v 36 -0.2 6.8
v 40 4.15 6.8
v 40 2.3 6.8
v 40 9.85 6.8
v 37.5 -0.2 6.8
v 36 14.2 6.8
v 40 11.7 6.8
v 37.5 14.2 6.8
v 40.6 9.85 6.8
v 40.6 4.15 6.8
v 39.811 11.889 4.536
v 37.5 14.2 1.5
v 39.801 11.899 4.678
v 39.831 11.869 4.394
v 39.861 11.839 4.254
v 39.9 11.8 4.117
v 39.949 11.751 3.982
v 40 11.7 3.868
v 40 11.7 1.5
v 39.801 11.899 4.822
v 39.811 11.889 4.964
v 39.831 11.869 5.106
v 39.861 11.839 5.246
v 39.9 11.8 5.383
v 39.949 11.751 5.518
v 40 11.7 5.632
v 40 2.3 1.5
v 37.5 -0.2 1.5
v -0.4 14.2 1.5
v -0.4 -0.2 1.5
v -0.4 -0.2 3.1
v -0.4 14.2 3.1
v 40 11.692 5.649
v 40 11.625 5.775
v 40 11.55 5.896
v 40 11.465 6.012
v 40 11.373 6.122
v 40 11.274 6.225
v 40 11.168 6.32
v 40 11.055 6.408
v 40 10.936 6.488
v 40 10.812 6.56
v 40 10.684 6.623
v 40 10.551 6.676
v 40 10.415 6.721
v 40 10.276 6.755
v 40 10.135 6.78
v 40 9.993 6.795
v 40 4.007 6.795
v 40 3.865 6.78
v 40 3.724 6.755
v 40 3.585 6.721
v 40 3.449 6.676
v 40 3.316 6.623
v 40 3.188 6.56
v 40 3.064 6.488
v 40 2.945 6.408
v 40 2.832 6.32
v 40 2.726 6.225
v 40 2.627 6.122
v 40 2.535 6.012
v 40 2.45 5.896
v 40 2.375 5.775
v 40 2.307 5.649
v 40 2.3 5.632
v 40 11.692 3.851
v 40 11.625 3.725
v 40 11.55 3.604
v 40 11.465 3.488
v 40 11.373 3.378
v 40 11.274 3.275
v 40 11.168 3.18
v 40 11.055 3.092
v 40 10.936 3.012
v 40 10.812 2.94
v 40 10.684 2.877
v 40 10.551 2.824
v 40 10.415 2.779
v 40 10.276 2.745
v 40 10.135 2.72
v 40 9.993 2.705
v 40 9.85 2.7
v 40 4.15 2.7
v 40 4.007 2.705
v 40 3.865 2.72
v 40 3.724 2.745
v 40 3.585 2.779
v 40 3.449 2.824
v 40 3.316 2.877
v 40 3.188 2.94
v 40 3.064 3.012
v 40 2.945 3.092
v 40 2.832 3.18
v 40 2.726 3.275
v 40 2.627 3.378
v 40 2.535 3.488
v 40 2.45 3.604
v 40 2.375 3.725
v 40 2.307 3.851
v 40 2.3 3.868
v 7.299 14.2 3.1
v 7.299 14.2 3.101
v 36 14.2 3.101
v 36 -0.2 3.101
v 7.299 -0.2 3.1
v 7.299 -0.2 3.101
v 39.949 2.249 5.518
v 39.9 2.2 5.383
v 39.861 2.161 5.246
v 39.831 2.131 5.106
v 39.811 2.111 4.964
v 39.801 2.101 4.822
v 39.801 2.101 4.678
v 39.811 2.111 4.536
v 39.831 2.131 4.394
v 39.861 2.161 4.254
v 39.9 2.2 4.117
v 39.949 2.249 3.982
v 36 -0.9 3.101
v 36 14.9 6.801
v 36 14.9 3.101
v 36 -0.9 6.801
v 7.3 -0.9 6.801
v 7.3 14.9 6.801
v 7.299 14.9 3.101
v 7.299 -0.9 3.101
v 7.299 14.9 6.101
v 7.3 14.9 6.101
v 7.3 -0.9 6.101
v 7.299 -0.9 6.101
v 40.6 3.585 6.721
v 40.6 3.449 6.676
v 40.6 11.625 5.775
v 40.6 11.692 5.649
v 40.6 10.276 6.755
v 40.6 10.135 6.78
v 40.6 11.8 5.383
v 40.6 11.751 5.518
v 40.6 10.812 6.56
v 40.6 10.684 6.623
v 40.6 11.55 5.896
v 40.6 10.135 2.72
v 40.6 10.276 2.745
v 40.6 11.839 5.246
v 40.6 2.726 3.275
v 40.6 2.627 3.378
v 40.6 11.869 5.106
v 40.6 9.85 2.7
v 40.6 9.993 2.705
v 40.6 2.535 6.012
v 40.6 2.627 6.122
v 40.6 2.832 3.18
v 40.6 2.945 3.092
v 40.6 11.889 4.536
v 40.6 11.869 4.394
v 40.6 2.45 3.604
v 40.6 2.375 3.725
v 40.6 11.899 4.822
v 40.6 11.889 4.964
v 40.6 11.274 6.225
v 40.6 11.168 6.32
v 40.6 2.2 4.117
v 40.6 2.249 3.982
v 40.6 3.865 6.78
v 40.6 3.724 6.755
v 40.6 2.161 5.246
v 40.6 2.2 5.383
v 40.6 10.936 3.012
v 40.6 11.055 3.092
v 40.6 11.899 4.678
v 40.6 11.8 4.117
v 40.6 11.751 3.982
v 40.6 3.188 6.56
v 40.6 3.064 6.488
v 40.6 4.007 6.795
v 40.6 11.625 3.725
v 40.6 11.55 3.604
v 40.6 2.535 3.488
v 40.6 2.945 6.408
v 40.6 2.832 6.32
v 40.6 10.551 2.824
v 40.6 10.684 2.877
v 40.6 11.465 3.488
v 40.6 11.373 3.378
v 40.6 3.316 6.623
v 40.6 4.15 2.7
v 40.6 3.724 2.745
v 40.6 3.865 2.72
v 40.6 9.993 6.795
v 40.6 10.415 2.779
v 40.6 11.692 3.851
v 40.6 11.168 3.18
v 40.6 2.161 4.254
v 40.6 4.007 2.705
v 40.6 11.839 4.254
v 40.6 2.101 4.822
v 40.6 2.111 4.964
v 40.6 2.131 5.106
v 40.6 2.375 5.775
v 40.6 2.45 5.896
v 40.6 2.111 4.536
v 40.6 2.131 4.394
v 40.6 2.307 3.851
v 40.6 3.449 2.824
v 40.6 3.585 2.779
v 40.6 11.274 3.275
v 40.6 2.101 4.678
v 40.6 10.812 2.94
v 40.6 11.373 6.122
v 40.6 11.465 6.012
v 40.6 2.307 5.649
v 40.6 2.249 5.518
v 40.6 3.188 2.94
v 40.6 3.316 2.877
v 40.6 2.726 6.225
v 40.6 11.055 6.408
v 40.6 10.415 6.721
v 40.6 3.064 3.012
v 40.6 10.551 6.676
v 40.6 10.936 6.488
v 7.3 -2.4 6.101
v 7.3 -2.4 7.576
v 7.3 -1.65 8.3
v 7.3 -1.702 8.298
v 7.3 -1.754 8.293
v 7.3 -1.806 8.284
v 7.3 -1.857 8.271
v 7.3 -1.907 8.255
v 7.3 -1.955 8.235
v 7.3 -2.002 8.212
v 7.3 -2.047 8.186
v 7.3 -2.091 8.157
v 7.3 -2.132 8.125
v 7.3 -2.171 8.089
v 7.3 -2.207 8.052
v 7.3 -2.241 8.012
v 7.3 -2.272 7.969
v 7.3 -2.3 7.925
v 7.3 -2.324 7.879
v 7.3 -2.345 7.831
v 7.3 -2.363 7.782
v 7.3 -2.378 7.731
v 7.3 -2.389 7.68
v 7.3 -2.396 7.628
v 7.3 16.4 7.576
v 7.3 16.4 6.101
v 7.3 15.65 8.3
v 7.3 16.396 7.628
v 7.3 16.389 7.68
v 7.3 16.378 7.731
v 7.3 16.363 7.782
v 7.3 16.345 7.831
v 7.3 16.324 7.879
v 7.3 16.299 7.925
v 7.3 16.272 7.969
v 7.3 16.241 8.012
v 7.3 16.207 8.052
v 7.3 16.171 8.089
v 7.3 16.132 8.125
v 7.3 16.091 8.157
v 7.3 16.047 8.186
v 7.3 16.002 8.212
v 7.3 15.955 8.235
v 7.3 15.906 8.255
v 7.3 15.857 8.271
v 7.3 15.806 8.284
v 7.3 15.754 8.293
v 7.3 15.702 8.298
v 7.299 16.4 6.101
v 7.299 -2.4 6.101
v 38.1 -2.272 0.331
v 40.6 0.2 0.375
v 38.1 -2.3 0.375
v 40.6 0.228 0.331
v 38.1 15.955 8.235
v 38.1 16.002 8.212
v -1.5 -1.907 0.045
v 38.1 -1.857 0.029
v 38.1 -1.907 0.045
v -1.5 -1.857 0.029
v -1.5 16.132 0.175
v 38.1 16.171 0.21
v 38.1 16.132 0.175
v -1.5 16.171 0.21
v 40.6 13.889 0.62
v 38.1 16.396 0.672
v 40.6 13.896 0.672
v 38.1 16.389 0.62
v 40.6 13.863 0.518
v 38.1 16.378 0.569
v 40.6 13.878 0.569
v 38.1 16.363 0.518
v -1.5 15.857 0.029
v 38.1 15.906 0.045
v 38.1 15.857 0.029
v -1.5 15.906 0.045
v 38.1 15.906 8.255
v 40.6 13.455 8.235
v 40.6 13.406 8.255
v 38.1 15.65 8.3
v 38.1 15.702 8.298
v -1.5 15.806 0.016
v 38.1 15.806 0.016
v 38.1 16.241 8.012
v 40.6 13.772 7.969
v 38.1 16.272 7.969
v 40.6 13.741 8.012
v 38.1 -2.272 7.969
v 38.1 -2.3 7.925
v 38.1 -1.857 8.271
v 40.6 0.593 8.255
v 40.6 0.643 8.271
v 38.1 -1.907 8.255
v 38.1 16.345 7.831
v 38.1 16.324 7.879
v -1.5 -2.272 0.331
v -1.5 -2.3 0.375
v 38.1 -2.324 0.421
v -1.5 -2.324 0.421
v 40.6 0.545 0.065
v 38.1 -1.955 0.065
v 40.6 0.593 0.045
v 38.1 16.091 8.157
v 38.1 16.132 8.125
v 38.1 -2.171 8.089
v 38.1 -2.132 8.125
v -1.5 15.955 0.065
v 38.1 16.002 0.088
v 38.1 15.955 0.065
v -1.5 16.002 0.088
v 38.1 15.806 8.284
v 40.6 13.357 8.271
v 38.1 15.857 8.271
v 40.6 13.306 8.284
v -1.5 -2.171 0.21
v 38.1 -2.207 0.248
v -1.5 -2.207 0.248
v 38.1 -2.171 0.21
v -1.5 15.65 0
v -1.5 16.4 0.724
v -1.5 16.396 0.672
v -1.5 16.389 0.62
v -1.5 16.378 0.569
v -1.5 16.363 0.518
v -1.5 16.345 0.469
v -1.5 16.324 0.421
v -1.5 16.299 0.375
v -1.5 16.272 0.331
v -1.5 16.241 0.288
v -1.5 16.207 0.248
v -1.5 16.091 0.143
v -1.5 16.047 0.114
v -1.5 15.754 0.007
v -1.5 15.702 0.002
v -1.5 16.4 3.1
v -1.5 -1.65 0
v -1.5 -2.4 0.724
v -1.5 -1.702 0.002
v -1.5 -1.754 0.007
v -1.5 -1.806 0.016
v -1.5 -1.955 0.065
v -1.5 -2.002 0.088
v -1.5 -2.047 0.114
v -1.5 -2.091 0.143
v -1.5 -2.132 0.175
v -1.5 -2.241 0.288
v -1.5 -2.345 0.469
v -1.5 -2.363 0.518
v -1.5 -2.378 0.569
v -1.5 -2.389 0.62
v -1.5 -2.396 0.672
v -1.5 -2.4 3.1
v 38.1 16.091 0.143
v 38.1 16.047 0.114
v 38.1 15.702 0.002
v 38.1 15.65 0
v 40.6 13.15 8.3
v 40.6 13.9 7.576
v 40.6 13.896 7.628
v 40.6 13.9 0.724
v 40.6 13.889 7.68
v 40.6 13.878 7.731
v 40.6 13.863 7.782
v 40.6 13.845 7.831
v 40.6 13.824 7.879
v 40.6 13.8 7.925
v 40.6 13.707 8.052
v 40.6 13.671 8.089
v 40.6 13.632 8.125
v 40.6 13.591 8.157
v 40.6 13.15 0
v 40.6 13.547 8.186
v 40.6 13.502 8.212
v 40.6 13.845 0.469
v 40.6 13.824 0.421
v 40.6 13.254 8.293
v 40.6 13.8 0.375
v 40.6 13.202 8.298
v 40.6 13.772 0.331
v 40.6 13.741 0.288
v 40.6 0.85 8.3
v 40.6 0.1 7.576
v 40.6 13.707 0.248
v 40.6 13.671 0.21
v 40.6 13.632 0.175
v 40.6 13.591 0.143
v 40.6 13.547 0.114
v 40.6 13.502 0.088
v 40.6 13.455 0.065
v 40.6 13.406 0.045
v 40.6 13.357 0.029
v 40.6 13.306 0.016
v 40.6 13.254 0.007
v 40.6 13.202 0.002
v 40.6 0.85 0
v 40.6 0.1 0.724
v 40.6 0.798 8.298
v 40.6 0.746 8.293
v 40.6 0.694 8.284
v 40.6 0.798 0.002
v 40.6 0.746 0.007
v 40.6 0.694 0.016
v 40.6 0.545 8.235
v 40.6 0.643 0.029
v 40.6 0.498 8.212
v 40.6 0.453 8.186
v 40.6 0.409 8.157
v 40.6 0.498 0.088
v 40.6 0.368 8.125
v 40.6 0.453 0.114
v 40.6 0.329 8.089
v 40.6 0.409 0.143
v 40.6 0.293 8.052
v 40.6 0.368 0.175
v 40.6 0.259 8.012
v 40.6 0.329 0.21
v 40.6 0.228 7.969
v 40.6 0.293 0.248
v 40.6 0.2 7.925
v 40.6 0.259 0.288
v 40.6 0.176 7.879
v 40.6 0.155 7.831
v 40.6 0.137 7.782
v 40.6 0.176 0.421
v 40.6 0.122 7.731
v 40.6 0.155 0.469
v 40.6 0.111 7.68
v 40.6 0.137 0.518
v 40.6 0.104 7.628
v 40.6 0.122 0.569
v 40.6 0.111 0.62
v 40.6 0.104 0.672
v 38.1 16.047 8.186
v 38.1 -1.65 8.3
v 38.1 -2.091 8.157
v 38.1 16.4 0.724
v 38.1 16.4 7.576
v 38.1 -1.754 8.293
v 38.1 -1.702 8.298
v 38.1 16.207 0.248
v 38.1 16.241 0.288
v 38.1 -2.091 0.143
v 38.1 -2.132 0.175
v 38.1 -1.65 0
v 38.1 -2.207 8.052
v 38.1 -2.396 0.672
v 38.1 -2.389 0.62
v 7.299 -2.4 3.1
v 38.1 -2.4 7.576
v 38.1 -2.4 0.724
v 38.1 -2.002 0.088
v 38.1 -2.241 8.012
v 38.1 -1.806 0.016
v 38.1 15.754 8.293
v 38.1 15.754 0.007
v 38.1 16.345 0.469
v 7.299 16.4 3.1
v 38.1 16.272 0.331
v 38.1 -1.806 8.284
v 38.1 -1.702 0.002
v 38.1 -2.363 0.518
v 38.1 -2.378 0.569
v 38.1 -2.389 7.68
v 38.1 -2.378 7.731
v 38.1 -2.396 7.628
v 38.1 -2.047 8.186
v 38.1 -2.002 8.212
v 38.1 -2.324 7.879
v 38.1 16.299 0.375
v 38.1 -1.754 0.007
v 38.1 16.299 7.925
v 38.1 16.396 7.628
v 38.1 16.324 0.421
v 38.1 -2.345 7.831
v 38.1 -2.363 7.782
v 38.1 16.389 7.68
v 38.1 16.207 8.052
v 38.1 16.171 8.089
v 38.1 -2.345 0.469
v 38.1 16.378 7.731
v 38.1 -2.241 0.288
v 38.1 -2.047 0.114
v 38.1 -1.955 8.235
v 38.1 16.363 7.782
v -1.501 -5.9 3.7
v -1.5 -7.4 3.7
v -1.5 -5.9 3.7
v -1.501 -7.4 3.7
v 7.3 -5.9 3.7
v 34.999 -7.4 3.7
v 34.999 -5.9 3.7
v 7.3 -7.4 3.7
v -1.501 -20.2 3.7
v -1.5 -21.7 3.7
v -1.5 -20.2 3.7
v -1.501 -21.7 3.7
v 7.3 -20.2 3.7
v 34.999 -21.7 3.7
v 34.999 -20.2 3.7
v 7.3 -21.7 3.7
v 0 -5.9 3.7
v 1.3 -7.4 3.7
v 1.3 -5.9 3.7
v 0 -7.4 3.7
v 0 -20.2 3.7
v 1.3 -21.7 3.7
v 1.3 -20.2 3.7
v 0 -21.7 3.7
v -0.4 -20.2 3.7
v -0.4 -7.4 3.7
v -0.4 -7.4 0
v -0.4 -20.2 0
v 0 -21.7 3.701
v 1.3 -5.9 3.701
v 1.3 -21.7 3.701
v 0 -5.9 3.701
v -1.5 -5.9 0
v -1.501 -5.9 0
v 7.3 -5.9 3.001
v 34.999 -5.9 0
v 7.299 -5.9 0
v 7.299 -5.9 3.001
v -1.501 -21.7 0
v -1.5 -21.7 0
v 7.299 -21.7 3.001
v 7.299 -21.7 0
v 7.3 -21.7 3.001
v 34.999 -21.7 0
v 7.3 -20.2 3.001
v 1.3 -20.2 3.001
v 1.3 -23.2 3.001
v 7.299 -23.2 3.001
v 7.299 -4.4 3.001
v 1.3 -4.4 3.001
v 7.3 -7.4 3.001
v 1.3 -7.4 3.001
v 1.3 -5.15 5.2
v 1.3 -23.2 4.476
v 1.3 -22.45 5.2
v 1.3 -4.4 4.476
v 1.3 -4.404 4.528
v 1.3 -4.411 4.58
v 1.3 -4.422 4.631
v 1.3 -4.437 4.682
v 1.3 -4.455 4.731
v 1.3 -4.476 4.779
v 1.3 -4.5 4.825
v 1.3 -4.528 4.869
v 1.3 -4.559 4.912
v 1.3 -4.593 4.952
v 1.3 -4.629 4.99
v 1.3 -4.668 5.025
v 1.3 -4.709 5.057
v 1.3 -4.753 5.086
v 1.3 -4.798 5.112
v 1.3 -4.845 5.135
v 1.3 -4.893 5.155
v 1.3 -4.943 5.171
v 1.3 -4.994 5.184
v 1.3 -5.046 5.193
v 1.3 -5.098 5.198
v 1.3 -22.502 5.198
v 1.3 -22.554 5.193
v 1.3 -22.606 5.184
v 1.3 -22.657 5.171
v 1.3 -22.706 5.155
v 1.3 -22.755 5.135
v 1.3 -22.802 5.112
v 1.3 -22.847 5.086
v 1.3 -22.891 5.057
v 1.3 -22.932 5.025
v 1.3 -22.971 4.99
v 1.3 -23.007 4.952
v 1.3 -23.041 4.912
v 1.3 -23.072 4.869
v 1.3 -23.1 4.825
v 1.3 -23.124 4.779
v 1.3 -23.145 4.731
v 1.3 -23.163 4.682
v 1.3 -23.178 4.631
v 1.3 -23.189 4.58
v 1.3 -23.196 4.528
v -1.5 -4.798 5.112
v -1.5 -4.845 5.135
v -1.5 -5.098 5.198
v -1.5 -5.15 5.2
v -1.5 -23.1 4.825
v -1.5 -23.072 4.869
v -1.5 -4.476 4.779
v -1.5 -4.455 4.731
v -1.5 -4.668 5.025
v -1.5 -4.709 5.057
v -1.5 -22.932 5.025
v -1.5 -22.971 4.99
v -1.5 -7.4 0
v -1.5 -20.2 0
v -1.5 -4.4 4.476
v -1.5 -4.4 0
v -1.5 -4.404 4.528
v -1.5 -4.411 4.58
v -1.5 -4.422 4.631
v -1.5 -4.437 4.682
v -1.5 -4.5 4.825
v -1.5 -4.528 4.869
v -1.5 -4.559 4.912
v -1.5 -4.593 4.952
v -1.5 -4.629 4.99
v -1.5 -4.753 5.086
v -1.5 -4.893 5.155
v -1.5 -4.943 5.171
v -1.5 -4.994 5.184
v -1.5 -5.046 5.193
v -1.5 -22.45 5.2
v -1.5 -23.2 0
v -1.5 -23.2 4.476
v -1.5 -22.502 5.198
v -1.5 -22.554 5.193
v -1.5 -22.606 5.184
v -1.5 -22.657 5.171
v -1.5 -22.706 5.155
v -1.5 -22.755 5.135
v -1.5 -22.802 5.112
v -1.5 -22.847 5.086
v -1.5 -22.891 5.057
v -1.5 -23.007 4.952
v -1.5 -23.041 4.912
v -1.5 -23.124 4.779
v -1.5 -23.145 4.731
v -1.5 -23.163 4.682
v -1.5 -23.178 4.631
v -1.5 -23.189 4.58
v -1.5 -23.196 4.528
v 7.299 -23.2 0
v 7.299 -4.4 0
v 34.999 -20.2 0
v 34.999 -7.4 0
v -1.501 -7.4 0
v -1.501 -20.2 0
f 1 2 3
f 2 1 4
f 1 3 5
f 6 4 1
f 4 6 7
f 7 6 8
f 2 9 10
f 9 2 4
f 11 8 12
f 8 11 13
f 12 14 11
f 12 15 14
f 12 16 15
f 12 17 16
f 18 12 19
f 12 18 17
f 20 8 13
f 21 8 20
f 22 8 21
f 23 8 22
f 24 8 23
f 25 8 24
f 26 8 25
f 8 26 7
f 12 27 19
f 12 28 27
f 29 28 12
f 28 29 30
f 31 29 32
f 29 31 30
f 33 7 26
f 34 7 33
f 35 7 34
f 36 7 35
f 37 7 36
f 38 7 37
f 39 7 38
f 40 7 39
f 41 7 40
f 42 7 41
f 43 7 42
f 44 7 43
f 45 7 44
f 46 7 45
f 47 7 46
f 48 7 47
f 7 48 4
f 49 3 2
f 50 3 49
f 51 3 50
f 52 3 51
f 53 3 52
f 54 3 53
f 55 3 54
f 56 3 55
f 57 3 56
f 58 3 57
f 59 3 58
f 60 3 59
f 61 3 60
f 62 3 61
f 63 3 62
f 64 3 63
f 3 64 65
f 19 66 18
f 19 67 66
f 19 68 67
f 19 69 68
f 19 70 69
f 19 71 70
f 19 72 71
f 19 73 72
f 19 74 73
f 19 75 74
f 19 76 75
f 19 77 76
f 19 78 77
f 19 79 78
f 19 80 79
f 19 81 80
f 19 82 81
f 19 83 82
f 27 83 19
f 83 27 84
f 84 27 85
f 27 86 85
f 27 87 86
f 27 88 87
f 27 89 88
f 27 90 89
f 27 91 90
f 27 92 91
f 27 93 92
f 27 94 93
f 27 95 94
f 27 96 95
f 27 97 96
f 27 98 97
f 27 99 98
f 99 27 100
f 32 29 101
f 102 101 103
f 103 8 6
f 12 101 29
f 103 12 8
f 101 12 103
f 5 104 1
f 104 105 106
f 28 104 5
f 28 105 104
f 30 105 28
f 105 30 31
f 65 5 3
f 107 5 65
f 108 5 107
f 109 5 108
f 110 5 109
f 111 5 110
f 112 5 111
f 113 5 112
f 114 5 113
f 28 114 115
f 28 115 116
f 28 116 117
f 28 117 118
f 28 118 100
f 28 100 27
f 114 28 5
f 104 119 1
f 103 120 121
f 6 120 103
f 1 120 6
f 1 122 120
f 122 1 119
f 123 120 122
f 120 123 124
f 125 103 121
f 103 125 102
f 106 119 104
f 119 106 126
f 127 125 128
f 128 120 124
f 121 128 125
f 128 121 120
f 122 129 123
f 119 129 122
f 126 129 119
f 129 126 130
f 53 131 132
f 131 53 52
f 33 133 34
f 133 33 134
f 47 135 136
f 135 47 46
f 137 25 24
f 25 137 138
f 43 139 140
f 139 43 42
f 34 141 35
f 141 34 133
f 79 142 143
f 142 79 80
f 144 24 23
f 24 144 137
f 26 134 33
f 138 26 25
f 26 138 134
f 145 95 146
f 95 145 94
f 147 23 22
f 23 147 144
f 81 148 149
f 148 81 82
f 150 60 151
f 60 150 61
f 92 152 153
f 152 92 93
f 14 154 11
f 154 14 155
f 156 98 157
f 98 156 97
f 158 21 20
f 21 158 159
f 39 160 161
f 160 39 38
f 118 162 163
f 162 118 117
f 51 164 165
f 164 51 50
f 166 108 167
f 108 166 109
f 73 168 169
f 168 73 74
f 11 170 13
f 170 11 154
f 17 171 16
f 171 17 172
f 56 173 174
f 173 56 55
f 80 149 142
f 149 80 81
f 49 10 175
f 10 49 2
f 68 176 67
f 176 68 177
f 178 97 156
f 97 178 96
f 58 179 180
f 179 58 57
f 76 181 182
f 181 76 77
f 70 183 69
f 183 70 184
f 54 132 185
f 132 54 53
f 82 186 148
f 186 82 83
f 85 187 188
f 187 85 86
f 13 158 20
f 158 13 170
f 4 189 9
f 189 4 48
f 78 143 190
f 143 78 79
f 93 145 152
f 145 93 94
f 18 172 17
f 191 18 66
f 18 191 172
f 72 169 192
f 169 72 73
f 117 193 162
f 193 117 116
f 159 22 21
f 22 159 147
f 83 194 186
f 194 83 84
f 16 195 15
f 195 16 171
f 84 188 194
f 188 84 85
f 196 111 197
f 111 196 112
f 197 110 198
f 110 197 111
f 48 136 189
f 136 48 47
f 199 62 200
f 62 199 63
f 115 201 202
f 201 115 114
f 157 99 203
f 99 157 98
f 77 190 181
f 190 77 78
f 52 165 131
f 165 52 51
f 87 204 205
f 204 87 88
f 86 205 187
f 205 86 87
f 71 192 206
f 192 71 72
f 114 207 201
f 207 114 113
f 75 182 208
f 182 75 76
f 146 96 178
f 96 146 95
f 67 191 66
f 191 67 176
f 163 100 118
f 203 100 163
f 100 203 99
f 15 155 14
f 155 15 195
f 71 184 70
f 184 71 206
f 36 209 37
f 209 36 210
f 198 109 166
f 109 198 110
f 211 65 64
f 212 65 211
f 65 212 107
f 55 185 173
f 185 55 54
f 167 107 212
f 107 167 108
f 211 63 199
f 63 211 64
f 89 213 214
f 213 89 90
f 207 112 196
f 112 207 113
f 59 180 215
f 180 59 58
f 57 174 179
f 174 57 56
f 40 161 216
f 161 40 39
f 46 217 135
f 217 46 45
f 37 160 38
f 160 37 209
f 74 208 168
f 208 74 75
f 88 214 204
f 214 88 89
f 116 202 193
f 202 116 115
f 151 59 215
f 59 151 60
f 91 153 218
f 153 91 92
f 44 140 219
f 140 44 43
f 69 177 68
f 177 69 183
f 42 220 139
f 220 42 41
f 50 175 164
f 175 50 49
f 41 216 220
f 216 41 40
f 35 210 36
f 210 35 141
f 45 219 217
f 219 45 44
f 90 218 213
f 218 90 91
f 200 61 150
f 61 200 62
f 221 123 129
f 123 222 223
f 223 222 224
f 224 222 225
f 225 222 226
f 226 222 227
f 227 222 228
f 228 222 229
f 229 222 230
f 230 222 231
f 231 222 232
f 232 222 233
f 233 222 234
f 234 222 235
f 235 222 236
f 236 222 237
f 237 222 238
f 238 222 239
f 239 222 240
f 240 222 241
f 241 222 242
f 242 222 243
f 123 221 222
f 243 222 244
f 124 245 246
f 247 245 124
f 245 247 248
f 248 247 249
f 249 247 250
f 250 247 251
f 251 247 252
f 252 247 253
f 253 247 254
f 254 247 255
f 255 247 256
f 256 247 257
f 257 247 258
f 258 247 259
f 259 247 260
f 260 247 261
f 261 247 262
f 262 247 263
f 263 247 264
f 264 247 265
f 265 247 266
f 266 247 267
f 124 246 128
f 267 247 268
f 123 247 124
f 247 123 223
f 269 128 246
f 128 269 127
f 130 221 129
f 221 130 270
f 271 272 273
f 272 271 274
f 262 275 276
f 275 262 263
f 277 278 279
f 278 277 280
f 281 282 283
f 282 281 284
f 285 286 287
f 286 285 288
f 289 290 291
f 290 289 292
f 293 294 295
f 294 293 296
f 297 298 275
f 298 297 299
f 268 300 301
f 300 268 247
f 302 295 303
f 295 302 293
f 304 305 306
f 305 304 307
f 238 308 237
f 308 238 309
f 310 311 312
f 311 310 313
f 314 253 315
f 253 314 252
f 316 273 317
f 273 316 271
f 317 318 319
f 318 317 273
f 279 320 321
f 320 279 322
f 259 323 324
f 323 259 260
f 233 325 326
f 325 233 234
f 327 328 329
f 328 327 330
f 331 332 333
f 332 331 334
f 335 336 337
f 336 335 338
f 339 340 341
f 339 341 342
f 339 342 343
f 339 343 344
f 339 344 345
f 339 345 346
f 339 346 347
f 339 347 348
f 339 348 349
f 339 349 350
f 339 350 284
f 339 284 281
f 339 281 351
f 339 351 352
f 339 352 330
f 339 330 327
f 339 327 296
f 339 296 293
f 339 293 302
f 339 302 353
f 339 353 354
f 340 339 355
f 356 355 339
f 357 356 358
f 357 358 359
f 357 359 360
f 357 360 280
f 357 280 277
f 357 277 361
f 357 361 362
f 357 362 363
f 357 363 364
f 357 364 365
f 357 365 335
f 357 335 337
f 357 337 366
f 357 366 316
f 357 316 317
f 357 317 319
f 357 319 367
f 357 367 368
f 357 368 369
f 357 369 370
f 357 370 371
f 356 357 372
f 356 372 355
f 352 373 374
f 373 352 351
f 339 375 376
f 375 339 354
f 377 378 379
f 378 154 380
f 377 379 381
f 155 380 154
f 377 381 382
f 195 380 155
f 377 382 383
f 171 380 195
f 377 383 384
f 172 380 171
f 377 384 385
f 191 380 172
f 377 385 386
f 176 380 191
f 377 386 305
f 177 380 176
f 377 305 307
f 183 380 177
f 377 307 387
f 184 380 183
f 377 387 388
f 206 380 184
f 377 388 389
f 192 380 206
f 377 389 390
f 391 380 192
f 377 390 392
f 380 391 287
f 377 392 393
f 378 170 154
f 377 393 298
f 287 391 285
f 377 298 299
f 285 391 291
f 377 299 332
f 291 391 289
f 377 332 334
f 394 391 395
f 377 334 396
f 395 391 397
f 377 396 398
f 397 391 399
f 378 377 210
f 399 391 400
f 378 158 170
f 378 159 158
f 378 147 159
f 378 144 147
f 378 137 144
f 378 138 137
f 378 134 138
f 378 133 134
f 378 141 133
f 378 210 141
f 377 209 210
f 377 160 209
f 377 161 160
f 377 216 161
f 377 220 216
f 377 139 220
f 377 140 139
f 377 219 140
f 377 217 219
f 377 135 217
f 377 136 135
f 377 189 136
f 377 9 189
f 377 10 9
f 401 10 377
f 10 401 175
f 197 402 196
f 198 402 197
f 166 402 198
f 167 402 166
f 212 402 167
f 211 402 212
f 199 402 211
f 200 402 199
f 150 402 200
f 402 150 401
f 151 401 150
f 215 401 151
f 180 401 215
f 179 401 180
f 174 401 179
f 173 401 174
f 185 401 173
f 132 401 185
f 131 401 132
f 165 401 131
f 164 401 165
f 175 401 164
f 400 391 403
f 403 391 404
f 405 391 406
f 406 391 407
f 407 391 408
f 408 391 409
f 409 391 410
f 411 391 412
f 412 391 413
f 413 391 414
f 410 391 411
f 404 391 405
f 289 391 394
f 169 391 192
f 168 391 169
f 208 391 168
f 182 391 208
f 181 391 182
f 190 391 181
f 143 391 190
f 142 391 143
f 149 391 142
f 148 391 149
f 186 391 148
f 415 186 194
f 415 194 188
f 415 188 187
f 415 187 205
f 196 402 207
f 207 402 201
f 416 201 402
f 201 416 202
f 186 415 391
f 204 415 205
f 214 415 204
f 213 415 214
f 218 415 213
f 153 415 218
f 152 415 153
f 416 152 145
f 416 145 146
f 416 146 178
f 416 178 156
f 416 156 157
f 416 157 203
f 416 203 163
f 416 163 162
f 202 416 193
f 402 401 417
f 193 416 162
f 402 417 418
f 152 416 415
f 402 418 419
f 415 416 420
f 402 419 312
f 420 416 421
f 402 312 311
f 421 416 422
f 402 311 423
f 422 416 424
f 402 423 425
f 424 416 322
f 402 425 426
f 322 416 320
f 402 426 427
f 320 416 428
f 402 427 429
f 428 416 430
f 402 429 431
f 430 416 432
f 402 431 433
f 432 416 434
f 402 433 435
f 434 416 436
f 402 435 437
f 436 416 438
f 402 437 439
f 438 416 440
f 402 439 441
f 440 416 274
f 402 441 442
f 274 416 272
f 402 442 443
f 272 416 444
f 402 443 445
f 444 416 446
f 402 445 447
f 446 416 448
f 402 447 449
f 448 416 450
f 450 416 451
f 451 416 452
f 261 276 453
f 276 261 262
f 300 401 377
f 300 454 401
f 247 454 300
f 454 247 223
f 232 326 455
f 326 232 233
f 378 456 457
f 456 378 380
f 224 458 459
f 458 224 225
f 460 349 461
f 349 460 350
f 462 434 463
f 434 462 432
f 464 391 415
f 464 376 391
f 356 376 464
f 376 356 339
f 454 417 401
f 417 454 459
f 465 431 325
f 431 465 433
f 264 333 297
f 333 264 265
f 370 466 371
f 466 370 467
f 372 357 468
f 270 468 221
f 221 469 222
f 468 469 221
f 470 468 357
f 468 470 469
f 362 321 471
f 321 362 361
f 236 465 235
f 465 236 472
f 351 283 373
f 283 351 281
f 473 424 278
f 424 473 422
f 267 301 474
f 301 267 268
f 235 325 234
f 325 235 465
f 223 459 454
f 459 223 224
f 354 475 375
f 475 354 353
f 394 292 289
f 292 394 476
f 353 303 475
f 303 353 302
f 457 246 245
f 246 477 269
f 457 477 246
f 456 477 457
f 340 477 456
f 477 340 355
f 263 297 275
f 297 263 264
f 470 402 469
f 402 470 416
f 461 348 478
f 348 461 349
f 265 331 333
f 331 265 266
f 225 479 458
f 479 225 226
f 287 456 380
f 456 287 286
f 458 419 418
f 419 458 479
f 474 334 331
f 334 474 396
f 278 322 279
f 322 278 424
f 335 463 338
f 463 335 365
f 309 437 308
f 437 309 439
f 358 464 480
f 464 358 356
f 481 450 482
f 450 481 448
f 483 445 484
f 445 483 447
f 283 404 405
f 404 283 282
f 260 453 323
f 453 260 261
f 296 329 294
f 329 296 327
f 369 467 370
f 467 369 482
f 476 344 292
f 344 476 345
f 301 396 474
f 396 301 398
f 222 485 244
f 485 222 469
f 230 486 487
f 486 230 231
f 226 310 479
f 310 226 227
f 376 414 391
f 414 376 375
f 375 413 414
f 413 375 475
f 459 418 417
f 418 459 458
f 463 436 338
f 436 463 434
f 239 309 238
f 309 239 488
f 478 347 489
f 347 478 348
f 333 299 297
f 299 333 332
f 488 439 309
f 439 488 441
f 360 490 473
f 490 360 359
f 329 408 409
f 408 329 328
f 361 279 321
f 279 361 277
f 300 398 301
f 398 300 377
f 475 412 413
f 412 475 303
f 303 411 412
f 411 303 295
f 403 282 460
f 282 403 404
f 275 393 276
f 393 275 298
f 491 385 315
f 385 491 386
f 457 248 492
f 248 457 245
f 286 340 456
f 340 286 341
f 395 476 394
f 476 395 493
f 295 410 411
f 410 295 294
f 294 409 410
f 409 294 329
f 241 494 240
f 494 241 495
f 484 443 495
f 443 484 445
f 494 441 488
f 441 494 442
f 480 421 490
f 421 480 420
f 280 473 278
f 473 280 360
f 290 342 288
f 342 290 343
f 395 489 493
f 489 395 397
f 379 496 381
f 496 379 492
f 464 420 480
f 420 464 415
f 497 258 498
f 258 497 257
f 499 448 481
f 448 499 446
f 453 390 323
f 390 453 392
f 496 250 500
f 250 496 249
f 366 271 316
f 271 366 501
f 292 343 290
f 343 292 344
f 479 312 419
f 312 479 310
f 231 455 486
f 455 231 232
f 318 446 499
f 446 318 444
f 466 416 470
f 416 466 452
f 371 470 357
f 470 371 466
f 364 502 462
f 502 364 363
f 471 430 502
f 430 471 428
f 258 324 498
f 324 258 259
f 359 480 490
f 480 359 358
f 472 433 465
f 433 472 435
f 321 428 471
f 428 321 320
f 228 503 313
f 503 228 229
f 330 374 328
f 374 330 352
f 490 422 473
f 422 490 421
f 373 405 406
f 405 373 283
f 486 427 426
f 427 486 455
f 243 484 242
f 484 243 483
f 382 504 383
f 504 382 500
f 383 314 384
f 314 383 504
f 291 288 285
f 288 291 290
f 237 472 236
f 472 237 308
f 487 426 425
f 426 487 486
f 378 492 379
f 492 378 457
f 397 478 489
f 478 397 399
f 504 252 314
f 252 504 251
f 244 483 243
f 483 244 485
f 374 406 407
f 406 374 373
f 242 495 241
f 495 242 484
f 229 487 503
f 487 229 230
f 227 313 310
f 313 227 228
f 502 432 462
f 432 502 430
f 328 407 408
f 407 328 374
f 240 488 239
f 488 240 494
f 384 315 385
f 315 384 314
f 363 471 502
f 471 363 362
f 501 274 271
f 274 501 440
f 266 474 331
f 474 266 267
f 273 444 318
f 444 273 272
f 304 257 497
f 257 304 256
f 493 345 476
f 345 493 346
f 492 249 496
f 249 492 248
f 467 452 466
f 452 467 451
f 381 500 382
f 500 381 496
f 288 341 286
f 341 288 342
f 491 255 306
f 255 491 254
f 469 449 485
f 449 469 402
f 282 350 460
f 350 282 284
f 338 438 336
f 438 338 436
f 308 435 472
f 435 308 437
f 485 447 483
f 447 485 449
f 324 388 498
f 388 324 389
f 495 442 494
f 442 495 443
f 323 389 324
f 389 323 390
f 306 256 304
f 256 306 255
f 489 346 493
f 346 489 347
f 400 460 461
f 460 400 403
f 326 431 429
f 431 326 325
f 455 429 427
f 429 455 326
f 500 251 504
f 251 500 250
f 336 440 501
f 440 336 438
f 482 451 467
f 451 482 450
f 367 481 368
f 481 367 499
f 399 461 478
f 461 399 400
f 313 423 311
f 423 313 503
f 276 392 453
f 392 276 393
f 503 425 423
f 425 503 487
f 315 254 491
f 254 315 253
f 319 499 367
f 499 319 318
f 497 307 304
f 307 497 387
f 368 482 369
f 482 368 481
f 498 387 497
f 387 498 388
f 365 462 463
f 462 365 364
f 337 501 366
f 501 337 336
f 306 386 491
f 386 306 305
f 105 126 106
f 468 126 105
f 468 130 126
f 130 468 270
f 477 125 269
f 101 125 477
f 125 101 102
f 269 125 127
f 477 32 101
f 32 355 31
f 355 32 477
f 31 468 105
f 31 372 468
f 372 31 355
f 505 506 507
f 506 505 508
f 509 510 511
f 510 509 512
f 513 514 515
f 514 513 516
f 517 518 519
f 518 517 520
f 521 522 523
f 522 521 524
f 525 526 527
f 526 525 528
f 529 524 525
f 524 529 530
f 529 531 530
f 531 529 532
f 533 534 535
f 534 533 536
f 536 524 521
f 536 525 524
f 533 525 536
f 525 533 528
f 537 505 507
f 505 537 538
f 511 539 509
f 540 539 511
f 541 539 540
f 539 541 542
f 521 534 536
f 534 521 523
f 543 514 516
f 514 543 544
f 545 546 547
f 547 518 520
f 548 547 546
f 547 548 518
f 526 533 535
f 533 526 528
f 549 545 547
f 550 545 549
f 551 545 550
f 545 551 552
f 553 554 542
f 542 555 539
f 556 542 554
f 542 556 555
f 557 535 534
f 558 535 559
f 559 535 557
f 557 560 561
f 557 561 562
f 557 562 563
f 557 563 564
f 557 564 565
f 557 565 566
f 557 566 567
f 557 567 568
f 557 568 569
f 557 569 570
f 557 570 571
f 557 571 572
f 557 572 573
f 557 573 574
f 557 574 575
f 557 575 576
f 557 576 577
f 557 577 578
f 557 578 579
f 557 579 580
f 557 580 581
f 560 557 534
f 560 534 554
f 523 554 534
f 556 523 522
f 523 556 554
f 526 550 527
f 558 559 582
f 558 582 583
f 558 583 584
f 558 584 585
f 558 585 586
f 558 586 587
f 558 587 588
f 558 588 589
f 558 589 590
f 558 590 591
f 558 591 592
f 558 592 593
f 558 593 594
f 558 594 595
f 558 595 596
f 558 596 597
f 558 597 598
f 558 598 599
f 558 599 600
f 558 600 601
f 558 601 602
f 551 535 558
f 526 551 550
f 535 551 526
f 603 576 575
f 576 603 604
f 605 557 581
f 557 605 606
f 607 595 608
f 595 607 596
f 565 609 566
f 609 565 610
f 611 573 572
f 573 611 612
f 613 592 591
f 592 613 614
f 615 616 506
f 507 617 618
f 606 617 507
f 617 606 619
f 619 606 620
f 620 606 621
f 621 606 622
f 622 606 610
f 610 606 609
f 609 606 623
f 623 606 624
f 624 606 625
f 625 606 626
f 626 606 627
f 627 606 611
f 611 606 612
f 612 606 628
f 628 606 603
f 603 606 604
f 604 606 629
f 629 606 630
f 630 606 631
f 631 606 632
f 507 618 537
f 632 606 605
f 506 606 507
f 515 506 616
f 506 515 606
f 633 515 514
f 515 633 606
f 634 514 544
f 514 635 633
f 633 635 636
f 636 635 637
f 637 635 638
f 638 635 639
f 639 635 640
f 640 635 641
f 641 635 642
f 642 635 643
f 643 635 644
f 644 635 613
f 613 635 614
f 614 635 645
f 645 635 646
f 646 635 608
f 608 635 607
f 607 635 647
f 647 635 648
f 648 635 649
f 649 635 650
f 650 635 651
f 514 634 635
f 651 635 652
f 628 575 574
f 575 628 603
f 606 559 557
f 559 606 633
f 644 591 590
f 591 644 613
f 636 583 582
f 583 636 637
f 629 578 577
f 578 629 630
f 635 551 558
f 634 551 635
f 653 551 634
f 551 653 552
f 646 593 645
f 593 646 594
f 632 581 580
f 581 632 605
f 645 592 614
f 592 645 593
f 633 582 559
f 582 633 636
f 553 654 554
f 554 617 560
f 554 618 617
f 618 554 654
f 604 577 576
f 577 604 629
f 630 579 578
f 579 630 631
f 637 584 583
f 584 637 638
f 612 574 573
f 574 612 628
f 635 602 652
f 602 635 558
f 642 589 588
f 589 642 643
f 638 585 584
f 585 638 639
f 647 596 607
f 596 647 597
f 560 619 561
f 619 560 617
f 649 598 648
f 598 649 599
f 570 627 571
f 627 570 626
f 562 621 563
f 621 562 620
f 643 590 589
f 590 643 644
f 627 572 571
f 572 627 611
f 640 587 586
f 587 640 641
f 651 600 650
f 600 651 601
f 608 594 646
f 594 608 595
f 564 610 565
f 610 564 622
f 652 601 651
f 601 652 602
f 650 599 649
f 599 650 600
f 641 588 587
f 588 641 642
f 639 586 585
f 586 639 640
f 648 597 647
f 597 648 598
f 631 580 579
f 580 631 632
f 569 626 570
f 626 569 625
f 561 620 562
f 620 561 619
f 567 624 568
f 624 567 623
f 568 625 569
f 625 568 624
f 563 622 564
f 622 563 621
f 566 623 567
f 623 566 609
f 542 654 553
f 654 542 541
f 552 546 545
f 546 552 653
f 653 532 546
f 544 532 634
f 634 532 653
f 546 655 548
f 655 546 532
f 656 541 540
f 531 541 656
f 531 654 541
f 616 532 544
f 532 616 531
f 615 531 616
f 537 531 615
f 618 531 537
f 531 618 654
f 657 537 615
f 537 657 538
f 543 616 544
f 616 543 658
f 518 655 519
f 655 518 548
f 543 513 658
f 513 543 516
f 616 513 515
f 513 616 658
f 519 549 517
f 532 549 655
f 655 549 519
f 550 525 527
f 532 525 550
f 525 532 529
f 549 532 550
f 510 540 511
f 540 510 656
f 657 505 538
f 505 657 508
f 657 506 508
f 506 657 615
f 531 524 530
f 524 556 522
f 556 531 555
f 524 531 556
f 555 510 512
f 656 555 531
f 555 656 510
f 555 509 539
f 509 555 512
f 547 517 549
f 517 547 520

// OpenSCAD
// All dimensions are in millimeters

// Adjust to account for printer accuracy
allow_h = 0.4; // total horizontal allowance for PCB fit

// PCB dimensions
board_w = 14; // width
board_l = 40; // length
board_t = 1.6; // thickness
board_c = 2.5; // chamfer distance from edge
board_e = 0.6; // distance from board top edge to closest component (includes allowance)

dbg_h = 3; // height of debug connector base
dbg_l = 6; // length of debug connector cutout
dbg_w = 30; // width of debug connector cutout
dbg_x = 4.3; // distance of center of debug connector from closest short board edge

usb_w = 9; // USB connector width + allowance
usb_h = 3.3; // USB connector height + allowance
usb_o = 0.6; // USB conector overhang == right wall thickness
usb_a = 0.8; // USB connector hole allowance

part_h = usb_h + 0.4; // height of tallest part on board (includes allowance for droop)

// Case dimensions
wall_t = 1.5; // general wall thickness
corner_r = 0.75; // outside corner radius (must be less than wall_t)

// Endcap dimensions
prong_w = 1.5; // width of prongs
prong_l = 35; // length of prongs

prong_c = (prong_w - board_e); // prong cutout width

case_w = board_w + wall_t*2 + prong_c*2; // total case width

E = 0.001; // Tiny size (epsilon)
L = 100; // Huge size (bigger than anything in model)

$fn = 90;

// Reference board (remove * to show, n.b. it's a bit slow)
*color("green")
	translate([0, 0, 2*E])
		scale([25.4, 25.4, 25.4])
			import("hs-probe-pcb.stl");

// Case with solid endcap
module solid_case() {
	module exterior_perimeter(l) {
		// Bottom
		translate([0, 0, -(wall_t - corner_r)])
			rotate(90, [0, 1, 0])
				cylinder(r=corner_r, h=l + usb_o);

		// Top			
		translate([0, 0, board_t + part_h + (wall_t - corner_r)])
			rotate(90, [0, 1, 0])
				cylinder(r=corner_r, h=l + usb_o);
	}
	
	difference() {
		// Case exterior
		translate([-wall_t, 0, 0]) hull() {
			offset = wall_t - corner_r + prong_c;
			
			// Left main
			translate([0, -offset, 0])
				exterior_perimeter(board_l + wall_t - board_c);
			
			// Right main
			translate([0, board_w + offset, 0])
				exterior_perimeter(board_l + wall_t - board_c);
			
			// Left chamfer
			translate([0, board_c - offset, 0])
				exterior_perimeter(board_l + wall_t);
			
			// Right chamfer
			translate([0, board_w - board_c + offset, 0])
				exterior_perimeter(board_l + wall_t);
		}
		
		// Space to cut out for board
		union() {
			// PCB and component space
			hull() {
				translate([-allow_h, -allow_h/2, 0])
					cube([
						board_l - board_c + allow_h,
						board_w + allow_h,
						board_t + part_h]);
				
			  translate([-allow_h, board_c - allow_h/2, 0])
					cube([
						board_l + allow_h,
						board_w - board_c*2 + allow_h,
						board_t + part_h]);
			}
			
			// Endcap prong cutout
			translate([0, -(prong_w - board_e), board_t + E])
				cube([
					prong_l + 1,
					board_w + 2*(prong_w - board_e),
					part_h]);
			
			// Cutout below PCB for better sliding
			/*translate([-allow_h, board_c, -0.25])
				cube([
					board_l + allow_h,
					board_w - board_c*2 + allow_h,
					0.25]);*/

			// USB connector
			translate([board_l - 10, 0, board_t + usb_h/2])
				hull() {
					translate([0, board_w/2 - (usb_w/2 - usb_h/2), 0])
						rotate(90, [0, 1, 0])
							cylinder(d=usb_h + usb_a, h=20);
					
					translate([0, board_w/2 + (usb_w/2 - usb_h/2), 0])
						rotate(90, [0, 1, 0])
							cylinder(d=usb_h + usb_a, h=20);
				}
			
			// Debug connector
			dbg_cutout();
		}
	}
}

// Debug connector cutout
module dbg_cutout() {
	translate([dbg_x - (dbg_l/2), 5.5 - (dbg_w/2), board_t + dbg_h + E])
		cube([dbg_l, dbg_w, 20]);
}

// Volume that defines part of solid_case to cut off for endcap
module endcap_cut() {
	translate([dbg_x + (dbg_l/2) - L - E, -L/2, board_t])
		cube([L, L, L]);
}

module endcap() {
	// Cut off part of solid case for endcap
	intersection() {
		solid_case();
		endcap_cut();
	}
		
	// Locking prongs	
	difference() {
		union() {
			translate([-wall_t - E, board_e - prong_w, board_t])
				cube([prong_l + wall_t, prong_w, part_h]);
			
			translate([-wall_t - E, board_w - board_e, board_t])
				cube([prong_l + wall_t, prong_w, part_h]);
		}
		
		dbg_cutout();
	}
}

module case() {
	// Remove endcap from solid case
	difference() {
		solid_case();
		endcap_cut();
	}
}

module view_assembled() {
	case();
	translate([-0.2, 0, 0.2]) endcap();
}

module view_print() {
	translate([0, 0, wall_t]) {
		case();
		
		translate([0, -(case_w + 2), -(board_t + wall_t)])
			endcap();
	}
}

module view_cross_section(h) {
	difference() {
		solid_case();
		translate([-L/2, -L/2, h]) cube([L, L, L]);
	}
}

view_print();
//view_assembled();
//view_cross_section(5);

echo(total_case_width=case_w);
